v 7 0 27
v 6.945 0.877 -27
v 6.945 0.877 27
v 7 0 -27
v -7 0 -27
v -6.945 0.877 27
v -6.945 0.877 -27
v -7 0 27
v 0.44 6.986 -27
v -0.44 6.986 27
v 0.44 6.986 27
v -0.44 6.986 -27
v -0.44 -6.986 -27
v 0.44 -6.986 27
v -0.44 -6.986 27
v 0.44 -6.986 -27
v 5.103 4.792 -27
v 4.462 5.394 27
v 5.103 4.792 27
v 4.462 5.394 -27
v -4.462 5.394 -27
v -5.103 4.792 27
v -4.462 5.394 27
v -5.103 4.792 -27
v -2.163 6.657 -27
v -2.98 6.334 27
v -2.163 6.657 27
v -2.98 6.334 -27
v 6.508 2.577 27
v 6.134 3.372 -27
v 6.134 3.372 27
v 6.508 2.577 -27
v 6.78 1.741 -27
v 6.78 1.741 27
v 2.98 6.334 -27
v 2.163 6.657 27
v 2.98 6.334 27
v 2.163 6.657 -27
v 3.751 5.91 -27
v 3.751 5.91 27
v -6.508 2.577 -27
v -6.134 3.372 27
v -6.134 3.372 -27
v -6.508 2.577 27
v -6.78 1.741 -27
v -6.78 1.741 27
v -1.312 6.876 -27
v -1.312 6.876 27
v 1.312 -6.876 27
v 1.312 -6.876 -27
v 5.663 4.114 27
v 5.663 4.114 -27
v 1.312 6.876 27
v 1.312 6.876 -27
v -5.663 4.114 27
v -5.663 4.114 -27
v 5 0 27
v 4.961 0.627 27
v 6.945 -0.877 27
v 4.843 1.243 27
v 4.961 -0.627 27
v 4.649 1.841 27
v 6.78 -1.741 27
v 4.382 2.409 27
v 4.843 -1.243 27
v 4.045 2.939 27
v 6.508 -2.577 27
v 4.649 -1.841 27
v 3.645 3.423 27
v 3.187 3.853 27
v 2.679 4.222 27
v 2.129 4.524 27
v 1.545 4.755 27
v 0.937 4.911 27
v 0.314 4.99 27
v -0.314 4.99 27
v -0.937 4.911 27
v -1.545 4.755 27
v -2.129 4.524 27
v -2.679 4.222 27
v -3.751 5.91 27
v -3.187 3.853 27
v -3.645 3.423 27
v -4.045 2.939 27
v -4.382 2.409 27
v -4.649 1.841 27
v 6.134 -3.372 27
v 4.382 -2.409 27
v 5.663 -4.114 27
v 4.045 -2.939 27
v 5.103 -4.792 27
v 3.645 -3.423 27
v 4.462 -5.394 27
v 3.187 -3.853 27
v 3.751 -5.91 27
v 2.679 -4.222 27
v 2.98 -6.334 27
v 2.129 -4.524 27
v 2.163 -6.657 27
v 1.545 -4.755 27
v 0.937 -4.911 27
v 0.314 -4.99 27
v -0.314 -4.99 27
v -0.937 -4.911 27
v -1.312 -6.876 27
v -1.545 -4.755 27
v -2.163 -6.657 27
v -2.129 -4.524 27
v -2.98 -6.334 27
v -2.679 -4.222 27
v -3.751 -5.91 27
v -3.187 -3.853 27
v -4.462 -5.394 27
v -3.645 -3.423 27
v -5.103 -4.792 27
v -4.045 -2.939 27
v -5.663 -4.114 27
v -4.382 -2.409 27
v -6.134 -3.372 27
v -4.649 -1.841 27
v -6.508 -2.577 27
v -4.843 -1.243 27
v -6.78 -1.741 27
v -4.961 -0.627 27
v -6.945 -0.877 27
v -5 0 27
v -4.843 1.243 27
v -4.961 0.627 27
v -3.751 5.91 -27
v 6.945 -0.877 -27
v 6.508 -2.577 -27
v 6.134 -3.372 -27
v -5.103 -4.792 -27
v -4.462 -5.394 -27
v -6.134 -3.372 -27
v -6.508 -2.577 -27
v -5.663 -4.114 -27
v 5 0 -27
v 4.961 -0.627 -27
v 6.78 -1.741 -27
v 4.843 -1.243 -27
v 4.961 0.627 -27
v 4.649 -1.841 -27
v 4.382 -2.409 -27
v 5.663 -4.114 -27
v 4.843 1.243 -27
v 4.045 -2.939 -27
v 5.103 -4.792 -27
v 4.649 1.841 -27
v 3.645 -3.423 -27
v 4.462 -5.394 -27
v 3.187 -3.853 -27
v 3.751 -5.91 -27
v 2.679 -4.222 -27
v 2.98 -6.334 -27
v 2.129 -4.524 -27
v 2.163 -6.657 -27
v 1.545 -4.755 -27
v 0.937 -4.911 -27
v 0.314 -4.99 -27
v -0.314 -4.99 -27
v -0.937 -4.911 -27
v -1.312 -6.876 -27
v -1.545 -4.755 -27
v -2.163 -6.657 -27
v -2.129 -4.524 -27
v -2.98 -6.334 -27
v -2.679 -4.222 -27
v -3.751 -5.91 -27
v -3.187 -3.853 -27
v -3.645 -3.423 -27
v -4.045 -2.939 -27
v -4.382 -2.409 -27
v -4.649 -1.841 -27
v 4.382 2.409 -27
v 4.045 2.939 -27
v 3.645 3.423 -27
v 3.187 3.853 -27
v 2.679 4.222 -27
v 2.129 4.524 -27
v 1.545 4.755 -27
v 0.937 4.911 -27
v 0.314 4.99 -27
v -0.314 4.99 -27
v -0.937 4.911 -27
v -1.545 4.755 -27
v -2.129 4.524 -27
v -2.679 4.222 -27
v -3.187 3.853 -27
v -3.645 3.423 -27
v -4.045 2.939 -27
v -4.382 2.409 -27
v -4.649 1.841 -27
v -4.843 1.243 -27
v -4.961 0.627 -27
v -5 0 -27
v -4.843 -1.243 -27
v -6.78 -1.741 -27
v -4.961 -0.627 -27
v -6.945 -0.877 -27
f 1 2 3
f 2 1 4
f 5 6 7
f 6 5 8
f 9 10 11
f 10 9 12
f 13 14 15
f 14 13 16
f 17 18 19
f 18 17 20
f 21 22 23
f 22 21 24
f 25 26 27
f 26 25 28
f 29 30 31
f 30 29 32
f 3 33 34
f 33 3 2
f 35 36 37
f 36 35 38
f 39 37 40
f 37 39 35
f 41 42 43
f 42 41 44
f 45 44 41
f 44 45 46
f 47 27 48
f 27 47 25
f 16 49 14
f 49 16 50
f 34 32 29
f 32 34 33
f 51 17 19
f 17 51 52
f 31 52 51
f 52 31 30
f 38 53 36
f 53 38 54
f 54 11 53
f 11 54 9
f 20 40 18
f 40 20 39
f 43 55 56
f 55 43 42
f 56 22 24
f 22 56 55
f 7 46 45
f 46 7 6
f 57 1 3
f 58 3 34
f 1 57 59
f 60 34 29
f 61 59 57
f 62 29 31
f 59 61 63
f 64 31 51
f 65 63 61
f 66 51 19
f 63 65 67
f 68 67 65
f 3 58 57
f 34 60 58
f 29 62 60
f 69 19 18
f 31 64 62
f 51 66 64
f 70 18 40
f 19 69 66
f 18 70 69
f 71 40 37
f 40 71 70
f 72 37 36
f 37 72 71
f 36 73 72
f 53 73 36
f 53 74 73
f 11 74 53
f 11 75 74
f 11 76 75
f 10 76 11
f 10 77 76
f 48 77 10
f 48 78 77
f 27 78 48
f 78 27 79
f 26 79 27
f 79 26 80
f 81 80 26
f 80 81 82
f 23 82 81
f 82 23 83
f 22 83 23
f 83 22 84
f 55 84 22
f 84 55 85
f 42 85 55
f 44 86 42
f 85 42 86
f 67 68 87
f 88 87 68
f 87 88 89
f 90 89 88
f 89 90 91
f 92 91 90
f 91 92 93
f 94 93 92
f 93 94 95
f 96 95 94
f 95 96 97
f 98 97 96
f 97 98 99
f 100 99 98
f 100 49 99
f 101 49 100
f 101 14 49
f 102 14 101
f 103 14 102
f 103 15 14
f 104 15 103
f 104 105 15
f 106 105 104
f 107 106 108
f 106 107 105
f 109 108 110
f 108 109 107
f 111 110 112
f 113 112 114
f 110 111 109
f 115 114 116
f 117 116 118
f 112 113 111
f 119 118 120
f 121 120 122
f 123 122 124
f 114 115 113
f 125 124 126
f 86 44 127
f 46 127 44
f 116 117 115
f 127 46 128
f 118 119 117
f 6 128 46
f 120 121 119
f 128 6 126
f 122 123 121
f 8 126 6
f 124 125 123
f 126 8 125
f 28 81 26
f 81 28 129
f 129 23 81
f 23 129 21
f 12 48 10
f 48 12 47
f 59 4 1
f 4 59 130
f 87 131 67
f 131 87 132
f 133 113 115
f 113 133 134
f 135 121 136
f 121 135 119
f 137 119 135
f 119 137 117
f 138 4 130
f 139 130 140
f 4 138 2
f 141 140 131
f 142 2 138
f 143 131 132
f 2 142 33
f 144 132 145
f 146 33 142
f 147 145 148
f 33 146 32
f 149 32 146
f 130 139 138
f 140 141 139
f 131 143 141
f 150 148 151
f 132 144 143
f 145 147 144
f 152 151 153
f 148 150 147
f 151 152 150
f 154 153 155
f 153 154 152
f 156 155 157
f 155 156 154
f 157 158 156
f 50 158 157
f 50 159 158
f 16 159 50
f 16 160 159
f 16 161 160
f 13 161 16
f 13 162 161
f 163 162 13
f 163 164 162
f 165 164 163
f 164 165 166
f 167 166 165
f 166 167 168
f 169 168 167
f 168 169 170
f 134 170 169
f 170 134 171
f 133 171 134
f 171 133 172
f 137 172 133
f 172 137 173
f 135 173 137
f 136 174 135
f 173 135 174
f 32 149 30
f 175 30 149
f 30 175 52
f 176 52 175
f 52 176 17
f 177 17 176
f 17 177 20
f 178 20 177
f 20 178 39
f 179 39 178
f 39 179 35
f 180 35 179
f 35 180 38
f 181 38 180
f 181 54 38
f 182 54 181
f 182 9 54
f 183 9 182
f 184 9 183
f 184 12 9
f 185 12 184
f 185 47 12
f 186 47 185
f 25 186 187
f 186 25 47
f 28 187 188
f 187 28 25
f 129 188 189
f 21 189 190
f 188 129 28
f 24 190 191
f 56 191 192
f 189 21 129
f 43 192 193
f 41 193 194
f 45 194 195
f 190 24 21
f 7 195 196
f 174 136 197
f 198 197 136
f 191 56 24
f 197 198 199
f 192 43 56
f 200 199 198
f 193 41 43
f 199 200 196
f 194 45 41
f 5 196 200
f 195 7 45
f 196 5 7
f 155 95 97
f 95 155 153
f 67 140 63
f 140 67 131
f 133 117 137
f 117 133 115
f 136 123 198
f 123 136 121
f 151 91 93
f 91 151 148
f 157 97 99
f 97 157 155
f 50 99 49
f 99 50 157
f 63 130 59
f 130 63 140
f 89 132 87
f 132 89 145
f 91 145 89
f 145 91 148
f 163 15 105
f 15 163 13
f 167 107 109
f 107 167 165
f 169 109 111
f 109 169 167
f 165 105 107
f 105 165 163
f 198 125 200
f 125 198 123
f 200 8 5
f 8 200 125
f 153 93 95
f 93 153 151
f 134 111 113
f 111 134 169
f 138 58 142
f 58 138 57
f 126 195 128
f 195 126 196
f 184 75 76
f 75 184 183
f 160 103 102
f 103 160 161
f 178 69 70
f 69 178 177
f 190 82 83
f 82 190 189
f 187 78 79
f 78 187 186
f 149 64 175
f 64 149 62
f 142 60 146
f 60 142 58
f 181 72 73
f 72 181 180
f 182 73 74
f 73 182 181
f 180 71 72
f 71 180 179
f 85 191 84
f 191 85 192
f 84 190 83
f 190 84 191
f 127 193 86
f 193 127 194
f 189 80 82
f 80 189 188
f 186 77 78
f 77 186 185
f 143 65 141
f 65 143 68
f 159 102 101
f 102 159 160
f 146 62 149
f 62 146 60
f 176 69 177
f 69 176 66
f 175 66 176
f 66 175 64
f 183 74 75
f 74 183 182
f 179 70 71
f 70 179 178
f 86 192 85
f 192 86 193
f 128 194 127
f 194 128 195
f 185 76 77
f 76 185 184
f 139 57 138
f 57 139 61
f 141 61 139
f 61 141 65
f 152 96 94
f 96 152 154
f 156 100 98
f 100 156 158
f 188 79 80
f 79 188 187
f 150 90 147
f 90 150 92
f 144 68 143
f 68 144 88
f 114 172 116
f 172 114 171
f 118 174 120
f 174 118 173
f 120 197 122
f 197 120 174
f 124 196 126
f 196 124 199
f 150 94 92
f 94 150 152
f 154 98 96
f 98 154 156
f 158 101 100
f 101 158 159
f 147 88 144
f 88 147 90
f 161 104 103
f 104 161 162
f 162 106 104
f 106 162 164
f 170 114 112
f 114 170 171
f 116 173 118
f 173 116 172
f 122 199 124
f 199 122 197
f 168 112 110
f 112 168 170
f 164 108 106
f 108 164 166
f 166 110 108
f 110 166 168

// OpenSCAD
$fn = 50;


difference() {
	union() {
		translate(v = [0, 0, -27.0000000000]) {
			cylinder(h = 54, r = 7.0000000000);
		}
	}
	union() {
		translate(v = [0, 0, -100.0000000000]) {
			cylinder(h = 200, r = 5.0000000000);
		}
	}
}
